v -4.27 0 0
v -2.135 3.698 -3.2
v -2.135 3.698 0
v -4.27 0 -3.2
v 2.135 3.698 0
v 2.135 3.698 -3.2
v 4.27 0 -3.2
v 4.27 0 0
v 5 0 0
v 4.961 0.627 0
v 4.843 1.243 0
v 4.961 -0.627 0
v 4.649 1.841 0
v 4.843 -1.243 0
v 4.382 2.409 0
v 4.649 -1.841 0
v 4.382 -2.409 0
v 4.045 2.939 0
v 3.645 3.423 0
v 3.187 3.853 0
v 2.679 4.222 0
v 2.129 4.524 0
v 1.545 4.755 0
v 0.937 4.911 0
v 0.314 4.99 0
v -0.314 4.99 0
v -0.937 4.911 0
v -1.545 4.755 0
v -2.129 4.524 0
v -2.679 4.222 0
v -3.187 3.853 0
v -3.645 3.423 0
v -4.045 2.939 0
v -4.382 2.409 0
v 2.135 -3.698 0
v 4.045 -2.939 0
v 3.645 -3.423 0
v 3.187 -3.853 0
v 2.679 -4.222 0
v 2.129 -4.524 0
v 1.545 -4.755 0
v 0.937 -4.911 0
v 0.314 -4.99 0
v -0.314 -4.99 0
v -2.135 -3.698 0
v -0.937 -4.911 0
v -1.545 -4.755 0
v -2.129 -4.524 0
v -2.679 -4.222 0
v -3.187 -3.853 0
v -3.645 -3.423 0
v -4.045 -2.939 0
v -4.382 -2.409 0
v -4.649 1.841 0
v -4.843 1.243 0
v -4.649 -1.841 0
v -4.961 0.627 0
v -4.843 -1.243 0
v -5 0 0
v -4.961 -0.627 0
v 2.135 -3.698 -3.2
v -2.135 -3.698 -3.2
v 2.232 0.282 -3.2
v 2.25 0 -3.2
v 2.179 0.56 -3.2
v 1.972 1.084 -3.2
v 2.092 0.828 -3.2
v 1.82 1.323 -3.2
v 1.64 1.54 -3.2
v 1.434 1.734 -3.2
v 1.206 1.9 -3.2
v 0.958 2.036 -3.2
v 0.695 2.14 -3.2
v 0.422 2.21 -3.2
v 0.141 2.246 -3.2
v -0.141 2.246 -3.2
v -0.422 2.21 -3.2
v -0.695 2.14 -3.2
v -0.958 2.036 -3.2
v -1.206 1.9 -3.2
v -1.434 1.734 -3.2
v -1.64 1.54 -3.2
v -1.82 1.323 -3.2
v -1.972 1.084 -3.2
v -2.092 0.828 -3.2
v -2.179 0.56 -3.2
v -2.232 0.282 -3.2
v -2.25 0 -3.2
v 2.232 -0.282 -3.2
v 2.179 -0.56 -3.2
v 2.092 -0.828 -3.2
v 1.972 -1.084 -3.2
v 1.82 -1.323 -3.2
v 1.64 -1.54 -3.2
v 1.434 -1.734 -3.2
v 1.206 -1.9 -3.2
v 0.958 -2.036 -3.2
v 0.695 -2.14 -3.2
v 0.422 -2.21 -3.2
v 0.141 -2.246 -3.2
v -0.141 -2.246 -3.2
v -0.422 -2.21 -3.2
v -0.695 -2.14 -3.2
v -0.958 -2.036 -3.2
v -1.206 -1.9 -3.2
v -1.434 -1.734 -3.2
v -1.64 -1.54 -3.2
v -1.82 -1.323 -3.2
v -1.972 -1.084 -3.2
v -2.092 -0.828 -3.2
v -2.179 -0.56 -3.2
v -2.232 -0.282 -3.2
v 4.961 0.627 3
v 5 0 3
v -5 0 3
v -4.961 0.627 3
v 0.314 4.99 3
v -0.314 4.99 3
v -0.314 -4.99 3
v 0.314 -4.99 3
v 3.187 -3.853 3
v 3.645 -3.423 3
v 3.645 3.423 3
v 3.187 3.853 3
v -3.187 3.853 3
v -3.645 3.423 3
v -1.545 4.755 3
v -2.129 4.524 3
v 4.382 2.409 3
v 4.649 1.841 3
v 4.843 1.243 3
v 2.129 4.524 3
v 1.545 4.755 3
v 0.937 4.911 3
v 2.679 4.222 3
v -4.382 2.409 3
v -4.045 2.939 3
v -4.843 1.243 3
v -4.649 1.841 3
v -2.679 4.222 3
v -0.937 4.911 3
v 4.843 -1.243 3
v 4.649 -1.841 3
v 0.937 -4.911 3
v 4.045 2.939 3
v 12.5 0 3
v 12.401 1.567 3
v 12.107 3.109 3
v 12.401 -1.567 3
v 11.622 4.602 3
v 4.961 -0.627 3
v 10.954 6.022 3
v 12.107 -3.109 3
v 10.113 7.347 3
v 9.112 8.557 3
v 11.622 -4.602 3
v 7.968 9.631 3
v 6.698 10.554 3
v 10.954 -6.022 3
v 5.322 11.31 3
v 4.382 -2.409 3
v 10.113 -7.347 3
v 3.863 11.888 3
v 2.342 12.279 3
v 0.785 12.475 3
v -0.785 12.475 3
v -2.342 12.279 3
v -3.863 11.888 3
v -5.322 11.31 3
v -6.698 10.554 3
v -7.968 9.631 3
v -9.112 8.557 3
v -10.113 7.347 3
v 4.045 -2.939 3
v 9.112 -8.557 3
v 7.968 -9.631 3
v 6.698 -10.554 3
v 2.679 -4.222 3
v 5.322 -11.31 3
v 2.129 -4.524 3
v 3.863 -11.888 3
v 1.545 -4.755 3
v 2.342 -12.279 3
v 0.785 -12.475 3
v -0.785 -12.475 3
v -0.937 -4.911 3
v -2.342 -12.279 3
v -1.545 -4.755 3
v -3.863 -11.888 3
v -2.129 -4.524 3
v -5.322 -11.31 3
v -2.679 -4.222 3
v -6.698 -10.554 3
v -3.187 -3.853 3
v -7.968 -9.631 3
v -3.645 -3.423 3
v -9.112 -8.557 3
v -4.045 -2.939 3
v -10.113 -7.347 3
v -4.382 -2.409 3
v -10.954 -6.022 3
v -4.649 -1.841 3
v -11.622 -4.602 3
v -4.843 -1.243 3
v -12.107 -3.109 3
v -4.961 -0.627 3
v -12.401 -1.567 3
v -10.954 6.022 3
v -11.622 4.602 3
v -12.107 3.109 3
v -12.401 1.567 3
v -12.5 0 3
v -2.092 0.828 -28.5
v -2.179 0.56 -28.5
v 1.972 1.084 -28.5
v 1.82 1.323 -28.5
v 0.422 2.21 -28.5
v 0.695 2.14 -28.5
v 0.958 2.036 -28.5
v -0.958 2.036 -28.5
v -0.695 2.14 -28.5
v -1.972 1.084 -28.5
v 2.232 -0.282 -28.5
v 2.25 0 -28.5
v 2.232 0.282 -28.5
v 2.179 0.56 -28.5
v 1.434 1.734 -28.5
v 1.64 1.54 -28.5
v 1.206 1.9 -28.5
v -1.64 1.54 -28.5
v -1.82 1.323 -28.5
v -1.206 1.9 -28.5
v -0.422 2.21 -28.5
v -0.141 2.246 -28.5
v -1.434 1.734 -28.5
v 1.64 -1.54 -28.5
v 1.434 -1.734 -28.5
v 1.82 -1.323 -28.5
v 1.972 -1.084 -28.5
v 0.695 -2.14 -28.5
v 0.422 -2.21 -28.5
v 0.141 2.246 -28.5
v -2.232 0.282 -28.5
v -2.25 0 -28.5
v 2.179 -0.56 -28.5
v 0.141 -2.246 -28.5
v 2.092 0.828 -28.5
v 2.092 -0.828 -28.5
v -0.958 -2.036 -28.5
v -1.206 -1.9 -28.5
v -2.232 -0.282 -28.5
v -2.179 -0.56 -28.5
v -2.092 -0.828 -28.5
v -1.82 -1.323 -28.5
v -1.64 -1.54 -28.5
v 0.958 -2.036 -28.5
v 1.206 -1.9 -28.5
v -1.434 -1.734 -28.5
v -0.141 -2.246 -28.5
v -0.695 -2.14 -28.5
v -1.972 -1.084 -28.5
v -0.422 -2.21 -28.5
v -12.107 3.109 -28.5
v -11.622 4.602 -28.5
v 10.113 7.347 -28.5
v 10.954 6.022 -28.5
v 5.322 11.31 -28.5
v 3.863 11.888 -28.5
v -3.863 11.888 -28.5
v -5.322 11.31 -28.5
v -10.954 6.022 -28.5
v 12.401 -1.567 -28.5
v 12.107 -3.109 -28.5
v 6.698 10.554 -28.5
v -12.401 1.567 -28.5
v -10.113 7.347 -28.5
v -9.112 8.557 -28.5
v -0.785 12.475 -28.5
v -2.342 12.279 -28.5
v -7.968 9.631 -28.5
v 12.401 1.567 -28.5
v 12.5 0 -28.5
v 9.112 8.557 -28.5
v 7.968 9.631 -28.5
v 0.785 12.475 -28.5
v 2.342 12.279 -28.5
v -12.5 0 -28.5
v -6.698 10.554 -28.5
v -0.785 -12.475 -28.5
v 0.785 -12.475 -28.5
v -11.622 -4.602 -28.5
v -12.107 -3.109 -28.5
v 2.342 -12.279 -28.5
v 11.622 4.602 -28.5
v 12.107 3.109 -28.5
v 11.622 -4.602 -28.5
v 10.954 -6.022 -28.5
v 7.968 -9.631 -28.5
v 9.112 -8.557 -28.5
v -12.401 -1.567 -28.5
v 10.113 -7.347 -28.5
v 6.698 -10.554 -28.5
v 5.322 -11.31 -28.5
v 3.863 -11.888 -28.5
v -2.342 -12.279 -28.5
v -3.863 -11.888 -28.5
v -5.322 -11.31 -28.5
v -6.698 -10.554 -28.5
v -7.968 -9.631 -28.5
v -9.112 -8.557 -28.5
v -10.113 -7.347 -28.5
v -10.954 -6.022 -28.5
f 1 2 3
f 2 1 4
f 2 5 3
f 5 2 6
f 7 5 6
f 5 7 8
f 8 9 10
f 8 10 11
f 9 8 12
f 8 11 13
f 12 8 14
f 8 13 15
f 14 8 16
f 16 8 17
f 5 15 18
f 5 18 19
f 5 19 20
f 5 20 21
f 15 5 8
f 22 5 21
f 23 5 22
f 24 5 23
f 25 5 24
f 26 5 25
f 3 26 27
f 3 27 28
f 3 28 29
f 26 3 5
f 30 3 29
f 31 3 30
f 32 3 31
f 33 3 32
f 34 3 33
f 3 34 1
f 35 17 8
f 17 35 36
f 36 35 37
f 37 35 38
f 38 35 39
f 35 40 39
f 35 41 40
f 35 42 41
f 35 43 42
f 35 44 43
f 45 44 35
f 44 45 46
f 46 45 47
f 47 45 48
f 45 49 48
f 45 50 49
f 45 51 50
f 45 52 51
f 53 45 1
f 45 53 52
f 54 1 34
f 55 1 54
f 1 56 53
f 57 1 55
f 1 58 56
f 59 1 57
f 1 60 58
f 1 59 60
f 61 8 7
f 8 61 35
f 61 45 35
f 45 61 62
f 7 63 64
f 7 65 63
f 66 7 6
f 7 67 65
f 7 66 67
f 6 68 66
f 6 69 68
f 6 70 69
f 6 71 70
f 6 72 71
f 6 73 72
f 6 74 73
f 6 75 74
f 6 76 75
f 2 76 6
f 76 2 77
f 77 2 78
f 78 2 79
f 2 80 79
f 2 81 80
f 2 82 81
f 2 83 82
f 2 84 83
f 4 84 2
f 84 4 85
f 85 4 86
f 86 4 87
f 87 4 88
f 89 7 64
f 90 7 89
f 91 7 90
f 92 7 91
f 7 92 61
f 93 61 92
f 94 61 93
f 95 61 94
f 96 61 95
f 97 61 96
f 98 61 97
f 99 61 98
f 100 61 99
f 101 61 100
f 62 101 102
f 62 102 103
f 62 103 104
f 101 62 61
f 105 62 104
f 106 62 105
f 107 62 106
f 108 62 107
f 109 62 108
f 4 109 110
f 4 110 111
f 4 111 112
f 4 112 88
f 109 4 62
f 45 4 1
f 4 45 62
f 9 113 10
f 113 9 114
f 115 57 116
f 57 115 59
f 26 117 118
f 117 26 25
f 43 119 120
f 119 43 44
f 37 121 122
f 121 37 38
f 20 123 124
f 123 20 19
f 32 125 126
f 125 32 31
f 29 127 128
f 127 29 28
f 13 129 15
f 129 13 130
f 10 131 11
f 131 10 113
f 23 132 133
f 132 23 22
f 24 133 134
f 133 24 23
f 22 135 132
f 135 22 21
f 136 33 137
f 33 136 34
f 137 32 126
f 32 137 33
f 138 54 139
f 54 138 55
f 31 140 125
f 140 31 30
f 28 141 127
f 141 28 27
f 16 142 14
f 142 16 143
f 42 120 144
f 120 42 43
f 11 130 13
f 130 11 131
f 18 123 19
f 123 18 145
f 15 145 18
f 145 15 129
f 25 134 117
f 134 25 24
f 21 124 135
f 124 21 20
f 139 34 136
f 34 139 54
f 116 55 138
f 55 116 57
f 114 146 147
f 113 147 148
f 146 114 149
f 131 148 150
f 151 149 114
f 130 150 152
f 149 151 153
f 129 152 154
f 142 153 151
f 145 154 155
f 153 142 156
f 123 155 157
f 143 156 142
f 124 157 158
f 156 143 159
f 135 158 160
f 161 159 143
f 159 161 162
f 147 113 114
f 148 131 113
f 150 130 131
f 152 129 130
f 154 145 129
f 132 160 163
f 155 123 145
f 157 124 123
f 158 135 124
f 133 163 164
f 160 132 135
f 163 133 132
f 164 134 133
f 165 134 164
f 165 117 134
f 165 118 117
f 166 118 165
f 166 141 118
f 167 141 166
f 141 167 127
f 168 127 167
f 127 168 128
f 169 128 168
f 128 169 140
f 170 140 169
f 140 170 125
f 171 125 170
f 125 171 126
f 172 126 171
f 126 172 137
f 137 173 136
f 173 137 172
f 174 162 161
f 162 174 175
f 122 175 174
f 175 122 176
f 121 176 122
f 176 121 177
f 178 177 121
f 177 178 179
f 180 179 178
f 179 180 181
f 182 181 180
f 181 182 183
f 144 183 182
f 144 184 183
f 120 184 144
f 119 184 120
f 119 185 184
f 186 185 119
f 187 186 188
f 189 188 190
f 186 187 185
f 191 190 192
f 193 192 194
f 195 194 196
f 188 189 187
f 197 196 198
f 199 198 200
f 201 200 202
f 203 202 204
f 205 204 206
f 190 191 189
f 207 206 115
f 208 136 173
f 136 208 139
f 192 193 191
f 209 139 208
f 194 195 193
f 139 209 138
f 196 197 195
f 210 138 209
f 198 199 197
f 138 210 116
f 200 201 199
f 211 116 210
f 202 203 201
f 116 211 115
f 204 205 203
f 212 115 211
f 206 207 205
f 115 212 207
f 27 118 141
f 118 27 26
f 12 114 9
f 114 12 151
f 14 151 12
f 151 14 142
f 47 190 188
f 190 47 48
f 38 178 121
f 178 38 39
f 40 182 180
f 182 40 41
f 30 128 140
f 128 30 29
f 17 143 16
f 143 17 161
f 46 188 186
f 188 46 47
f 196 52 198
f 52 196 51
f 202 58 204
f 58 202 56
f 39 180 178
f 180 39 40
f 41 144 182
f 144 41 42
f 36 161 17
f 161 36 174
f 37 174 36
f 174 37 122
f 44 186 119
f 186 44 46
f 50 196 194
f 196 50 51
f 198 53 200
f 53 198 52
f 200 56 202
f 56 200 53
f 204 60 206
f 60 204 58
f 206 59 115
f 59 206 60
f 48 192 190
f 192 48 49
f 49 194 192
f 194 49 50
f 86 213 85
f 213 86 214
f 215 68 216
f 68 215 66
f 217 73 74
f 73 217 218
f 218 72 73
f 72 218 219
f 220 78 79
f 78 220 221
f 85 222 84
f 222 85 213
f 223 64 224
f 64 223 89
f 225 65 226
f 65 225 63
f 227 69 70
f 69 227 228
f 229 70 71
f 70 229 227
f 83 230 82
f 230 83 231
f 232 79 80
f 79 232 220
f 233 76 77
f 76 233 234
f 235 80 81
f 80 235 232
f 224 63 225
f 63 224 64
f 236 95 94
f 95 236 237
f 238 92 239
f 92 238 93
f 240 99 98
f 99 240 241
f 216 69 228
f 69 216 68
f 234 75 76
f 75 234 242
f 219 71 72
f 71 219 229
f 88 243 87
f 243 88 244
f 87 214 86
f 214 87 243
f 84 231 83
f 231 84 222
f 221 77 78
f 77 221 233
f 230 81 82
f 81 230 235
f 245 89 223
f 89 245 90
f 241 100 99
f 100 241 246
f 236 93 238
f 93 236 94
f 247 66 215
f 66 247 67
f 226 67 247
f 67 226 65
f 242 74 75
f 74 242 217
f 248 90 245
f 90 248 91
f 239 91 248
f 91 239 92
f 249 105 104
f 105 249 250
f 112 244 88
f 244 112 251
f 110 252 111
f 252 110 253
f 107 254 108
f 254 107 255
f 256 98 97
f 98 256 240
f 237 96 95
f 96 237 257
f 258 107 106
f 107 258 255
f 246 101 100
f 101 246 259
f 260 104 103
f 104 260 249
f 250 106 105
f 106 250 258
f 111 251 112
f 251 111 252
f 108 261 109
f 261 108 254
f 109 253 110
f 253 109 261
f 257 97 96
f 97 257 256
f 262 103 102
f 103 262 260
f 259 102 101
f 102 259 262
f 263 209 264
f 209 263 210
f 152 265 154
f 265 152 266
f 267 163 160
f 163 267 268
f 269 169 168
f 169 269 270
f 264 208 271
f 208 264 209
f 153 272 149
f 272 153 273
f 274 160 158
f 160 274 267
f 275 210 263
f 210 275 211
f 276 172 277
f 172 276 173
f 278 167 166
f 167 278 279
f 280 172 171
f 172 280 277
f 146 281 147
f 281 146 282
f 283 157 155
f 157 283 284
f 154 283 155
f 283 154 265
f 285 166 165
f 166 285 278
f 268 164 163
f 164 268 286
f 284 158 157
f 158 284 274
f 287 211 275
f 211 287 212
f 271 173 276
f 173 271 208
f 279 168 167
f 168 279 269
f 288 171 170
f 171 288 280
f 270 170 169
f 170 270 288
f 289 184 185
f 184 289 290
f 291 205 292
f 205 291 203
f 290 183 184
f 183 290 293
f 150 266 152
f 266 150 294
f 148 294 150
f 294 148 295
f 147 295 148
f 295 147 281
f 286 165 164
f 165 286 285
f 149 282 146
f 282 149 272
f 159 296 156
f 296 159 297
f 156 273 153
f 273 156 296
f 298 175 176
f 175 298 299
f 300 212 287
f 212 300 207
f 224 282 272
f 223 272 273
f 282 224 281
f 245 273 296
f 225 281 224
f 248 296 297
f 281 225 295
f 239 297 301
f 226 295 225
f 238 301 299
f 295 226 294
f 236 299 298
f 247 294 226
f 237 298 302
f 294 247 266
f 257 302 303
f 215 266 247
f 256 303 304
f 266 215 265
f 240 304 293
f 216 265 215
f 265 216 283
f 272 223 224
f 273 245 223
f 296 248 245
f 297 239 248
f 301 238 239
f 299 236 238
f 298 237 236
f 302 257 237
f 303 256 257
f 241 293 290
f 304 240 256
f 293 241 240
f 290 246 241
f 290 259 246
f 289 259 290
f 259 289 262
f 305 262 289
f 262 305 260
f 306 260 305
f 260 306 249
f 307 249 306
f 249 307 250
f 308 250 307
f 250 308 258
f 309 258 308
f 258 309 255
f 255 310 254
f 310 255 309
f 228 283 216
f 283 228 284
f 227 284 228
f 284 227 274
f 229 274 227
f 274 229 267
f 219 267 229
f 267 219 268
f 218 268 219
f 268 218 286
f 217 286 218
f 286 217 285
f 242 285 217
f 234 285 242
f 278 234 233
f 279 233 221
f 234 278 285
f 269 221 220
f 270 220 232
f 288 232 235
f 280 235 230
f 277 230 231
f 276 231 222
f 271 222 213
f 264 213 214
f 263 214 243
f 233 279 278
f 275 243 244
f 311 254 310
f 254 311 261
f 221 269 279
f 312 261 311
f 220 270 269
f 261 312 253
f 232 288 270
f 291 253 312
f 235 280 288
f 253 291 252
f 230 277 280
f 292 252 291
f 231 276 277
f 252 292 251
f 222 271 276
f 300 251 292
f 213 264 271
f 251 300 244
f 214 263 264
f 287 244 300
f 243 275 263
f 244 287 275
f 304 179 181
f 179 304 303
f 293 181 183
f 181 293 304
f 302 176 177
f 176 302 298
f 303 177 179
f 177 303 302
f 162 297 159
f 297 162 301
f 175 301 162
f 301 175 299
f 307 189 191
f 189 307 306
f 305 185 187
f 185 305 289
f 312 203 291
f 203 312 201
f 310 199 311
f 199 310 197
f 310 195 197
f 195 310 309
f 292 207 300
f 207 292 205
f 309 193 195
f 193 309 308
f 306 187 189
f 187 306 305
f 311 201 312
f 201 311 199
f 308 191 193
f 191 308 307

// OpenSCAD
$fn = 50;

difference() {
	union() {
		translate(v = [0, 0, -28.5]) {
			cylinder(h = 31.5, r = 12.5);
		}
	}
	union() {
		translate(v = [0, 0, 0]) {
			rotate(a = [0, 0, 0]) {
				difference() {
					union() {
						translate(v = [0, 0, -3.2]) {
							linear_extrude(height = 3.2) {
								polygon(points = [[4.2698, 0.0], [2.1349000000000005, 3.697755269078796], [-2.134899999999999, 3.6977552690787965], [-4.2698, 5.228996902999369e-16], [-2.134900000000002, -3.6977552690787956], [2.1348999999999974, -3.697755269078798]]);
							}
						}
					}
					union();
				}
			}
		}
		#cylinder(h = 3, r = 5.0);
		#translate(v = [0, 0, -100.0]) {
			cylinder(h = 200, r = 2.25);
		}
	}
}
